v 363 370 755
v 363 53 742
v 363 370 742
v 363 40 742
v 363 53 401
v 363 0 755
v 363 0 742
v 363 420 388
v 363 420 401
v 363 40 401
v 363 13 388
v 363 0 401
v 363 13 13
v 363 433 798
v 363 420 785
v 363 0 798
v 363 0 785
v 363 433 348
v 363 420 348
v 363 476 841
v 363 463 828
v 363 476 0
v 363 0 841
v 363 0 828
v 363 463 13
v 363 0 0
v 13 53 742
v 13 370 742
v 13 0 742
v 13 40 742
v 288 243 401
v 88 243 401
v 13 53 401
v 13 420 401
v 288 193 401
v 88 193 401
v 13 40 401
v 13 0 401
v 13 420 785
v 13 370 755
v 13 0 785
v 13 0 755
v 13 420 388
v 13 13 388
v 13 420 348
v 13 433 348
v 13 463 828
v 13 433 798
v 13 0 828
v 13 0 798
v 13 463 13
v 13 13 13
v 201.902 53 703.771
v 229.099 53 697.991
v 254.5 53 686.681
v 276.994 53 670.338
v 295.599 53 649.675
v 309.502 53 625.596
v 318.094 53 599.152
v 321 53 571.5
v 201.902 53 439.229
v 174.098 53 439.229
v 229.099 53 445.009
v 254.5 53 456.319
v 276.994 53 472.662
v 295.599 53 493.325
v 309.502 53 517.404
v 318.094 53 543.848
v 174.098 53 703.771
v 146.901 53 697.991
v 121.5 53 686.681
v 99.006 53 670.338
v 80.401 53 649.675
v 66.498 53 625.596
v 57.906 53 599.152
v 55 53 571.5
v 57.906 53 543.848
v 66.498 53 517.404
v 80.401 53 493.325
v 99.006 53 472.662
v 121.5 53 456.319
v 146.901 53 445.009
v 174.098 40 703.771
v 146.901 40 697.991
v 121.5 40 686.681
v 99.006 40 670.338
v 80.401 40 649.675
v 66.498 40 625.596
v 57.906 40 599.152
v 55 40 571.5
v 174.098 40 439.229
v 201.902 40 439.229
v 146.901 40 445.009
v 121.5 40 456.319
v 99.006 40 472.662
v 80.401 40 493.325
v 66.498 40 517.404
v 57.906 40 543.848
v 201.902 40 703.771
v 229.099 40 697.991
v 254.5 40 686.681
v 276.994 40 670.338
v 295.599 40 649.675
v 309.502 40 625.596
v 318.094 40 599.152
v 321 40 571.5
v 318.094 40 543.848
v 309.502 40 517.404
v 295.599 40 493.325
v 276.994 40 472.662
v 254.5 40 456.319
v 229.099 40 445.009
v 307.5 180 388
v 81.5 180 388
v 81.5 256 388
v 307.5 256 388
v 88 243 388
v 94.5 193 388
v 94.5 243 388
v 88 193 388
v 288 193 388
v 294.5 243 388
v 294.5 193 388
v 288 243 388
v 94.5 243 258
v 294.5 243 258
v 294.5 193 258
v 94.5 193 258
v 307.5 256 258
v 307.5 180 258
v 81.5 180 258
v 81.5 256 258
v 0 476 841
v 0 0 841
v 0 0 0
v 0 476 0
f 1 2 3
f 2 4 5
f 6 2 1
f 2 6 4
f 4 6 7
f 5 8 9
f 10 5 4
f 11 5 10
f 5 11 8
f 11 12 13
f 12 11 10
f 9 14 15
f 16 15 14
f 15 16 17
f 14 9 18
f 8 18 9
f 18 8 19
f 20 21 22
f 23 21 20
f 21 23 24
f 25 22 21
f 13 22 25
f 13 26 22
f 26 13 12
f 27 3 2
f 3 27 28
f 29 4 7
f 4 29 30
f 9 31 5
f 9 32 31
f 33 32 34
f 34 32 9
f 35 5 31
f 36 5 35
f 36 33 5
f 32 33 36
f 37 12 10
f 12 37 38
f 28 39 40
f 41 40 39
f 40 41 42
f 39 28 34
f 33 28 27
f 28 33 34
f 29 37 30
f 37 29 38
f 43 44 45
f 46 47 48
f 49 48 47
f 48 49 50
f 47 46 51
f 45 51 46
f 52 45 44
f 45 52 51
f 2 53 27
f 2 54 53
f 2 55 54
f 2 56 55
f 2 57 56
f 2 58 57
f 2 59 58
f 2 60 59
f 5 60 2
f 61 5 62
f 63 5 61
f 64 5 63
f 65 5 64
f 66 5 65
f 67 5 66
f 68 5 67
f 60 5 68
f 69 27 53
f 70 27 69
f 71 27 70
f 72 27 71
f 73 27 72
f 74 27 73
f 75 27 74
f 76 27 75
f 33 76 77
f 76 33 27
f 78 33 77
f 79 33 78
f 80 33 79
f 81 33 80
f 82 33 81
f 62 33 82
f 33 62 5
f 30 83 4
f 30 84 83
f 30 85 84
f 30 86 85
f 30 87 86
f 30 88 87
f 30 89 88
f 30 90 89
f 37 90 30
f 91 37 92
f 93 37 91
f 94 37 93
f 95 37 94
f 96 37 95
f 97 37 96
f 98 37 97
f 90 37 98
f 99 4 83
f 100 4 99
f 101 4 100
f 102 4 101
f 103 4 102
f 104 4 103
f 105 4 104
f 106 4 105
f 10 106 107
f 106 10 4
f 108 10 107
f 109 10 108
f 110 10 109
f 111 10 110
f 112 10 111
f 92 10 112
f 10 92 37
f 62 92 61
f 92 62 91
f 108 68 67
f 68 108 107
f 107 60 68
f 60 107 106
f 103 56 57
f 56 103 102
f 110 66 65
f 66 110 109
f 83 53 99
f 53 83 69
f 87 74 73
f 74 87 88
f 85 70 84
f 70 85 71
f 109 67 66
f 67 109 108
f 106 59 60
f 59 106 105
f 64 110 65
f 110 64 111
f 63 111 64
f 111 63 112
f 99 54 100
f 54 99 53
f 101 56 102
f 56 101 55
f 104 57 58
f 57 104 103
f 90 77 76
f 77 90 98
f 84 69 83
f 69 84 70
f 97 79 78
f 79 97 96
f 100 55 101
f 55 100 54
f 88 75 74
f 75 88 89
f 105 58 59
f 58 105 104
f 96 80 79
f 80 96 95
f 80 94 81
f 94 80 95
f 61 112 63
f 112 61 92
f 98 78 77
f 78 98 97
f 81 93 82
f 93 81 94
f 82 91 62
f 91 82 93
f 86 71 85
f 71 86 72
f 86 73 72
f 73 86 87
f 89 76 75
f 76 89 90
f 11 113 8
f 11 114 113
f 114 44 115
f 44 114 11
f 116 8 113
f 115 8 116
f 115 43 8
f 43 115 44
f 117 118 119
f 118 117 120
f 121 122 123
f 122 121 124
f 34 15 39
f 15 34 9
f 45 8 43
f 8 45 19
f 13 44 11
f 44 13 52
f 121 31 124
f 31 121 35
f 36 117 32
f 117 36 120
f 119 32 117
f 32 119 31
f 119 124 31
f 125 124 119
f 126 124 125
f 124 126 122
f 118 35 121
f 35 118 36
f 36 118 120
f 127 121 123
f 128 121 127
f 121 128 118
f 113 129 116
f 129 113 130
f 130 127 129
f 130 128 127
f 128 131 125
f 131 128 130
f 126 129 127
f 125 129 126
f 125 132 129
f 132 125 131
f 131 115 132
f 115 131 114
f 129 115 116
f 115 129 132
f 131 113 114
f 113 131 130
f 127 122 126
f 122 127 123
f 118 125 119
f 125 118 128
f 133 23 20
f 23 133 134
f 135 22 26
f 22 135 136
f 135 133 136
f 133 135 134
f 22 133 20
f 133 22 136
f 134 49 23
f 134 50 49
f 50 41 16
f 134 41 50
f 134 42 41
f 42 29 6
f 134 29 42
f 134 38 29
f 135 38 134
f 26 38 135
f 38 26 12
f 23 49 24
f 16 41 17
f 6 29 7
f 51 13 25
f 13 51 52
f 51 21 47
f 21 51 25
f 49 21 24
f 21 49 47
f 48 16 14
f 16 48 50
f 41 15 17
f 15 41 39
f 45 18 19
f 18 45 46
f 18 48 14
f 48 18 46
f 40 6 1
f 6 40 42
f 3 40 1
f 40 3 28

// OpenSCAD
// Aperiodic Bi-Chamber enclosure (ABC)
// for Dayton Ultimax 8" or 10" subwoofer
//
// Ultimax 8
// https://www.daytonaudio.com/product/2062/umii8-22-ultimax-ii-8-dvc-subwoofer-2-ohms-per-coil
// specs
// https://www.daytonaudio.com/images/resources/295-708--dayton-audio-UMII8-22-spec-sheet.pdf
//
// Ultimax 10
// https://www.daytonaudio.com/product/2062/umii8-22-ultimax-ii-8-dvc-subwoofer-2-ohms-per-coil
// specs
// https://www.daytonaudio.com/images/resources/295-708--dayton-audio-UMII8-22-spec-sheet.pdf


// Parameters that can be changed


// sub radius - the largest radius of the basket, ie no bevel
// 107 for 8" sub
// 133 for 10" sub
subr = 133;

ih = 815; // overall inner height

rh = 375; // rear chamber inner height (ie bottom chamber)

t = 13; // plywood timber thickness

mpy = 180; // hardcoded distance of midport from front wall

suby = 40; // how far set back the sub panel is

// Parameters that probably won't change

iw = 350; // inner width
id = 450; // inner depth

ph = 30; // port height

rpl = 900; // rear port length
fpl = 370; // front port length

mpw = 200; // mid port width
mpd = 50; // mid port depth
mpl = 130; // mid port length


// The panels

// left side
translate([0, 0, 0]) {
    d = t+id+t;
    h = t+ih+t;
    cube([t, d, h]);
    echo(str("Left side panel: ", d, " x ", h));
}

// right side
translate([t+iw, 0, 0]) {
    d = t+id+t;
    h = t+ih+t;
    //cube([t, t+id+t, h]);
    echo(str("Right side panel: ", d, " x ", h));
}

// bottom
translate([t, t, 0]) {
    w = iw;
    d = id;
    color("red") cube([iw, d, t]);
    echo(str("Bottom panel: ", w, " x ", d));
}

// top
translate([t, 0, ih+t]) {
    w = iw;
    d = t+id;
    color("red") cube([iw, d, t]);
    echo(str("Top panel: ", w, " x ", d));
}

// rear
translate([t, t+id, 0]) {
    w = iw;
    d = t;
    h = t+ih+t;
    color("green") cube([w, d, h]);
    echo(str("Rear panel: ", h, " x ", w));
}

// front
translate([t, 0, 0]) {
    w = iw;
    d = t;
    h = t + rh + t;
    color("green") cube([w, d, h]);
    echo(str("Front panel: ", h, " x ", w));
}

// sub panel
subph = ih - ph - t - ph - t - rh - t; // sub panel height
translate([t, suby, t+rh+t]) {
    h = subph;
    d = t;
    w = iw;
    difference() {
        color("green") cube([w, d, h]);
        // cutout for sub
        suboffset = (h - subr*2) / 2;
        translate([w/2, -1, h-suboffset-subr]) {
            rotate([-90, 0, 0]) {
                cylinder(r=subr, h=t+2);
            }
        }
    }
    echo(str("Sub panel: ", h, " x ", w));
}

// horizontal divider
translate([t, t, t+rh]) {
    w = iw;
    d = id - ph - t;
    echo(str("Divider: ", d, " x ", w));
    difference() {
        color("blue") cube([w, d, t]);
        // mid port hole
        mpx = (iw - mpw) / 2;
        translate([mpx, mpy, -1]) {
            cube([mpw, mpd, t+2]);
        }
    }
}

// rear port horizontal
rpd = t + id - ph - t; // rear port depth of the ply sheet
translate([t, 0, t+ih-ph-t]) {
    w = iw;
    d = rpd;
    color("blue") cube([w, d, t]);
    echo(str("Rear port horizontal: ", d, " x ", w));
}


// rear port depth path
// ie length of the horizontal part of the rear port
rpdp = rpd + ph/2;
// rear port remaining length after accounting for horizontal part of the part
rprl = rpl - rpdp - ph/2;
// the starting z value for the rear port vertical
rpz = t + ih - ph - rprl;
// rear port vertical
translate([t, rpd, rpz]) {
    w = iw;
    h = rprl;
    color("magenta") cube([w, t, h]);
    echo(str("Rear port vertical: ", h, " x ", w));
}

// front port horizontal
translate([t, 0, t+ih-ph-t-ph-t]) {
    w = iw;
    d = fpl;
    color("blue") cube([w, d, t]);
    echo(str("Front port horizontal: ", d, " x ", w));
}

// mid port
ompw = t + mpw + t; // outer mid port width
ompd = t + mpd + t; // outer mid port depth
mpz = t + rh - mpl;
mpv = ompw * ompd * mpl;
mpx = (t + (iw-mpw)) / 2;
translate([mpx, mpy, mpz]) {
    difference() {
        color("grey") cube([ompw, ompd, mpl]);
        translate([t, t, -1]) {
            cube([mpw, mpd, mpl+2]);
        }
    }
}

// calculate and report some volumes
// front chamber volume
fch = subph;
fcd = id - ph-t - suby;
fcw = iw;
fcv = fch*fcd*fch/1000000;
echo(str("Front chamber volume: ", fcv, " L"));
// rear chamber volume
rch = rh;
rcd = id;
rcw = iw;
rcvnmp = rch*rcd*rch; // rear chamber volume with no mid port
rcv = (rcvnmp - mpv)/1000000;
echo(str("Rear chamber volume: ", rcv, " L"));
